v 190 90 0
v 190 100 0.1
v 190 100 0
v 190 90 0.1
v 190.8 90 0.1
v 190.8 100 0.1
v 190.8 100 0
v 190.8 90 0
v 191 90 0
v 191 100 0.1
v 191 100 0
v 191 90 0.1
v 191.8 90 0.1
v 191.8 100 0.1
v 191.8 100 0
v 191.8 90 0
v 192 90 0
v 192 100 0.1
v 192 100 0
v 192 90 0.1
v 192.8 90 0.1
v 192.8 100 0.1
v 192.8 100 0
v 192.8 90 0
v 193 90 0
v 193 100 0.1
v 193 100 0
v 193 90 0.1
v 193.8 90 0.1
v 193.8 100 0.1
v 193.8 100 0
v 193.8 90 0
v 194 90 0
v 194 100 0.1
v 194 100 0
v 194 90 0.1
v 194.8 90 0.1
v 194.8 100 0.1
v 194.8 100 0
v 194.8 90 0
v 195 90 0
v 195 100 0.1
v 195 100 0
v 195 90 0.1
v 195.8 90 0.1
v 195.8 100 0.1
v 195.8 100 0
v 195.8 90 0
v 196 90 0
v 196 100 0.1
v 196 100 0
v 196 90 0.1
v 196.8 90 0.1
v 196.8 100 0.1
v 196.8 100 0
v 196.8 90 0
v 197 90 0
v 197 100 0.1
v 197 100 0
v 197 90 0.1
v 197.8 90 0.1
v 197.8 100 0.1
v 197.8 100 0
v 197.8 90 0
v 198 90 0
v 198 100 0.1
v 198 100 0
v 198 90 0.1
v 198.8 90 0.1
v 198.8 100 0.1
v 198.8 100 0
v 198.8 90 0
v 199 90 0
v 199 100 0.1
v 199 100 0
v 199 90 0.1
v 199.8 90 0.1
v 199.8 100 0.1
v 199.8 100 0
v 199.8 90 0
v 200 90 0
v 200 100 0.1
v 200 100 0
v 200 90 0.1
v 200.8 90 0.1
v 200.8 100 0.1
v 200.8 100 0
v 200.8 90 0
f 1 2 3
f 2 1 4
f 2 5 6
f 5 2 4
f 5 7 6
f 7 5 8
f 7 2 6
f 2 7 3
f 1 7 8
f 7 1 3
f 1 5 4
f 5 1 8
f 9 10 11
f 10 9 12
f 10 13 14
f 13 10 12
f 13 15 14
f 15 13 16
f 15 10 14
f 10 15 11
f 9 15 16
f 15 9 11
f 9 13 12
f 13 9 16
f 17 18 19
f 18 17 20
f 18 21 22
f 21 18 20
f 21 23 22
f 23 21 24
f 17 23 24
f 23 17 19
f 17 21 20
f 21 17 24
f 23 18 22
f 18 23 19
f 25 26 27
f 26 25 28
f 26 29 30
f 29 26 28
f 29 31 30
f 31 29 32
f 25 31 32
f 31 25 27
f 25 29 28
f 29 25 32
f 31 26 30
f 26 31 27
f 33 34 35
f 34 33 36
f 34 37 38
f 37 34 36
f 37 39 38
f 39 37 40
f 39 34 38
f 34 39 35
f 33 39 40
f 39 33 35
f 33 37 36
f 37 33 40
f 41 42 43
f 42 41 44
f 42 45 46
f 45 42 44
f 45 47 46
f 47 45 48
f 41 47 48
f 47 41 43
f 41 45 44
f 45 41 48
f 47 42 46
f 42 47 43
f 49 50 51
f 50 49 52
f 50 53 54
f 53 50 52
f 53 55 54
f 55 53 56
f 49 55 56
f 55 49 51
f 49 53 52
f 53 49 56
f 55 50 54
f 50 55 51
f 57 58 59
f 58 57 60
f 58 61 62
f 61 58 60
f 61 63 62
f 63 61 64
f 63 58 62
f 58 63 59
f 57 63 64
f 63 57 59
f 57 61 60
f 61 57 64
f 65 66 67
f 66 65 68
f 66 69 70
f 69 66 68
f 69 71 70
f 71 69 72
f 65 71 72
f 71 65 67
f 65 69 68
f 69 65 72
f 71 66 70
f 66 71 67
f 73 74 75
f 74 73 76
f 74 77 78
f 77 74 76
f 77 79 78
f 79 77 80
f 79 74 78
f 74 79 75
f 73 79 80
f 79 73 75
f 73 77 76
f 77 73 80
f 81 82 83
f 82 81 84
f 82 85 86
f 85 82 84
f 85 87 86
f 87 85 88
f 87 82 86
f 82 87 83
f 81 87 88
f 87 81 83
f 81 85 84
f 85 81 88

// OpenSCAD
translate([10+180,10+80,0])
        for (i = [0 : 10]){
            translate([i,0,0])
                cube(size = [0.8,10,0.1]);
    }
